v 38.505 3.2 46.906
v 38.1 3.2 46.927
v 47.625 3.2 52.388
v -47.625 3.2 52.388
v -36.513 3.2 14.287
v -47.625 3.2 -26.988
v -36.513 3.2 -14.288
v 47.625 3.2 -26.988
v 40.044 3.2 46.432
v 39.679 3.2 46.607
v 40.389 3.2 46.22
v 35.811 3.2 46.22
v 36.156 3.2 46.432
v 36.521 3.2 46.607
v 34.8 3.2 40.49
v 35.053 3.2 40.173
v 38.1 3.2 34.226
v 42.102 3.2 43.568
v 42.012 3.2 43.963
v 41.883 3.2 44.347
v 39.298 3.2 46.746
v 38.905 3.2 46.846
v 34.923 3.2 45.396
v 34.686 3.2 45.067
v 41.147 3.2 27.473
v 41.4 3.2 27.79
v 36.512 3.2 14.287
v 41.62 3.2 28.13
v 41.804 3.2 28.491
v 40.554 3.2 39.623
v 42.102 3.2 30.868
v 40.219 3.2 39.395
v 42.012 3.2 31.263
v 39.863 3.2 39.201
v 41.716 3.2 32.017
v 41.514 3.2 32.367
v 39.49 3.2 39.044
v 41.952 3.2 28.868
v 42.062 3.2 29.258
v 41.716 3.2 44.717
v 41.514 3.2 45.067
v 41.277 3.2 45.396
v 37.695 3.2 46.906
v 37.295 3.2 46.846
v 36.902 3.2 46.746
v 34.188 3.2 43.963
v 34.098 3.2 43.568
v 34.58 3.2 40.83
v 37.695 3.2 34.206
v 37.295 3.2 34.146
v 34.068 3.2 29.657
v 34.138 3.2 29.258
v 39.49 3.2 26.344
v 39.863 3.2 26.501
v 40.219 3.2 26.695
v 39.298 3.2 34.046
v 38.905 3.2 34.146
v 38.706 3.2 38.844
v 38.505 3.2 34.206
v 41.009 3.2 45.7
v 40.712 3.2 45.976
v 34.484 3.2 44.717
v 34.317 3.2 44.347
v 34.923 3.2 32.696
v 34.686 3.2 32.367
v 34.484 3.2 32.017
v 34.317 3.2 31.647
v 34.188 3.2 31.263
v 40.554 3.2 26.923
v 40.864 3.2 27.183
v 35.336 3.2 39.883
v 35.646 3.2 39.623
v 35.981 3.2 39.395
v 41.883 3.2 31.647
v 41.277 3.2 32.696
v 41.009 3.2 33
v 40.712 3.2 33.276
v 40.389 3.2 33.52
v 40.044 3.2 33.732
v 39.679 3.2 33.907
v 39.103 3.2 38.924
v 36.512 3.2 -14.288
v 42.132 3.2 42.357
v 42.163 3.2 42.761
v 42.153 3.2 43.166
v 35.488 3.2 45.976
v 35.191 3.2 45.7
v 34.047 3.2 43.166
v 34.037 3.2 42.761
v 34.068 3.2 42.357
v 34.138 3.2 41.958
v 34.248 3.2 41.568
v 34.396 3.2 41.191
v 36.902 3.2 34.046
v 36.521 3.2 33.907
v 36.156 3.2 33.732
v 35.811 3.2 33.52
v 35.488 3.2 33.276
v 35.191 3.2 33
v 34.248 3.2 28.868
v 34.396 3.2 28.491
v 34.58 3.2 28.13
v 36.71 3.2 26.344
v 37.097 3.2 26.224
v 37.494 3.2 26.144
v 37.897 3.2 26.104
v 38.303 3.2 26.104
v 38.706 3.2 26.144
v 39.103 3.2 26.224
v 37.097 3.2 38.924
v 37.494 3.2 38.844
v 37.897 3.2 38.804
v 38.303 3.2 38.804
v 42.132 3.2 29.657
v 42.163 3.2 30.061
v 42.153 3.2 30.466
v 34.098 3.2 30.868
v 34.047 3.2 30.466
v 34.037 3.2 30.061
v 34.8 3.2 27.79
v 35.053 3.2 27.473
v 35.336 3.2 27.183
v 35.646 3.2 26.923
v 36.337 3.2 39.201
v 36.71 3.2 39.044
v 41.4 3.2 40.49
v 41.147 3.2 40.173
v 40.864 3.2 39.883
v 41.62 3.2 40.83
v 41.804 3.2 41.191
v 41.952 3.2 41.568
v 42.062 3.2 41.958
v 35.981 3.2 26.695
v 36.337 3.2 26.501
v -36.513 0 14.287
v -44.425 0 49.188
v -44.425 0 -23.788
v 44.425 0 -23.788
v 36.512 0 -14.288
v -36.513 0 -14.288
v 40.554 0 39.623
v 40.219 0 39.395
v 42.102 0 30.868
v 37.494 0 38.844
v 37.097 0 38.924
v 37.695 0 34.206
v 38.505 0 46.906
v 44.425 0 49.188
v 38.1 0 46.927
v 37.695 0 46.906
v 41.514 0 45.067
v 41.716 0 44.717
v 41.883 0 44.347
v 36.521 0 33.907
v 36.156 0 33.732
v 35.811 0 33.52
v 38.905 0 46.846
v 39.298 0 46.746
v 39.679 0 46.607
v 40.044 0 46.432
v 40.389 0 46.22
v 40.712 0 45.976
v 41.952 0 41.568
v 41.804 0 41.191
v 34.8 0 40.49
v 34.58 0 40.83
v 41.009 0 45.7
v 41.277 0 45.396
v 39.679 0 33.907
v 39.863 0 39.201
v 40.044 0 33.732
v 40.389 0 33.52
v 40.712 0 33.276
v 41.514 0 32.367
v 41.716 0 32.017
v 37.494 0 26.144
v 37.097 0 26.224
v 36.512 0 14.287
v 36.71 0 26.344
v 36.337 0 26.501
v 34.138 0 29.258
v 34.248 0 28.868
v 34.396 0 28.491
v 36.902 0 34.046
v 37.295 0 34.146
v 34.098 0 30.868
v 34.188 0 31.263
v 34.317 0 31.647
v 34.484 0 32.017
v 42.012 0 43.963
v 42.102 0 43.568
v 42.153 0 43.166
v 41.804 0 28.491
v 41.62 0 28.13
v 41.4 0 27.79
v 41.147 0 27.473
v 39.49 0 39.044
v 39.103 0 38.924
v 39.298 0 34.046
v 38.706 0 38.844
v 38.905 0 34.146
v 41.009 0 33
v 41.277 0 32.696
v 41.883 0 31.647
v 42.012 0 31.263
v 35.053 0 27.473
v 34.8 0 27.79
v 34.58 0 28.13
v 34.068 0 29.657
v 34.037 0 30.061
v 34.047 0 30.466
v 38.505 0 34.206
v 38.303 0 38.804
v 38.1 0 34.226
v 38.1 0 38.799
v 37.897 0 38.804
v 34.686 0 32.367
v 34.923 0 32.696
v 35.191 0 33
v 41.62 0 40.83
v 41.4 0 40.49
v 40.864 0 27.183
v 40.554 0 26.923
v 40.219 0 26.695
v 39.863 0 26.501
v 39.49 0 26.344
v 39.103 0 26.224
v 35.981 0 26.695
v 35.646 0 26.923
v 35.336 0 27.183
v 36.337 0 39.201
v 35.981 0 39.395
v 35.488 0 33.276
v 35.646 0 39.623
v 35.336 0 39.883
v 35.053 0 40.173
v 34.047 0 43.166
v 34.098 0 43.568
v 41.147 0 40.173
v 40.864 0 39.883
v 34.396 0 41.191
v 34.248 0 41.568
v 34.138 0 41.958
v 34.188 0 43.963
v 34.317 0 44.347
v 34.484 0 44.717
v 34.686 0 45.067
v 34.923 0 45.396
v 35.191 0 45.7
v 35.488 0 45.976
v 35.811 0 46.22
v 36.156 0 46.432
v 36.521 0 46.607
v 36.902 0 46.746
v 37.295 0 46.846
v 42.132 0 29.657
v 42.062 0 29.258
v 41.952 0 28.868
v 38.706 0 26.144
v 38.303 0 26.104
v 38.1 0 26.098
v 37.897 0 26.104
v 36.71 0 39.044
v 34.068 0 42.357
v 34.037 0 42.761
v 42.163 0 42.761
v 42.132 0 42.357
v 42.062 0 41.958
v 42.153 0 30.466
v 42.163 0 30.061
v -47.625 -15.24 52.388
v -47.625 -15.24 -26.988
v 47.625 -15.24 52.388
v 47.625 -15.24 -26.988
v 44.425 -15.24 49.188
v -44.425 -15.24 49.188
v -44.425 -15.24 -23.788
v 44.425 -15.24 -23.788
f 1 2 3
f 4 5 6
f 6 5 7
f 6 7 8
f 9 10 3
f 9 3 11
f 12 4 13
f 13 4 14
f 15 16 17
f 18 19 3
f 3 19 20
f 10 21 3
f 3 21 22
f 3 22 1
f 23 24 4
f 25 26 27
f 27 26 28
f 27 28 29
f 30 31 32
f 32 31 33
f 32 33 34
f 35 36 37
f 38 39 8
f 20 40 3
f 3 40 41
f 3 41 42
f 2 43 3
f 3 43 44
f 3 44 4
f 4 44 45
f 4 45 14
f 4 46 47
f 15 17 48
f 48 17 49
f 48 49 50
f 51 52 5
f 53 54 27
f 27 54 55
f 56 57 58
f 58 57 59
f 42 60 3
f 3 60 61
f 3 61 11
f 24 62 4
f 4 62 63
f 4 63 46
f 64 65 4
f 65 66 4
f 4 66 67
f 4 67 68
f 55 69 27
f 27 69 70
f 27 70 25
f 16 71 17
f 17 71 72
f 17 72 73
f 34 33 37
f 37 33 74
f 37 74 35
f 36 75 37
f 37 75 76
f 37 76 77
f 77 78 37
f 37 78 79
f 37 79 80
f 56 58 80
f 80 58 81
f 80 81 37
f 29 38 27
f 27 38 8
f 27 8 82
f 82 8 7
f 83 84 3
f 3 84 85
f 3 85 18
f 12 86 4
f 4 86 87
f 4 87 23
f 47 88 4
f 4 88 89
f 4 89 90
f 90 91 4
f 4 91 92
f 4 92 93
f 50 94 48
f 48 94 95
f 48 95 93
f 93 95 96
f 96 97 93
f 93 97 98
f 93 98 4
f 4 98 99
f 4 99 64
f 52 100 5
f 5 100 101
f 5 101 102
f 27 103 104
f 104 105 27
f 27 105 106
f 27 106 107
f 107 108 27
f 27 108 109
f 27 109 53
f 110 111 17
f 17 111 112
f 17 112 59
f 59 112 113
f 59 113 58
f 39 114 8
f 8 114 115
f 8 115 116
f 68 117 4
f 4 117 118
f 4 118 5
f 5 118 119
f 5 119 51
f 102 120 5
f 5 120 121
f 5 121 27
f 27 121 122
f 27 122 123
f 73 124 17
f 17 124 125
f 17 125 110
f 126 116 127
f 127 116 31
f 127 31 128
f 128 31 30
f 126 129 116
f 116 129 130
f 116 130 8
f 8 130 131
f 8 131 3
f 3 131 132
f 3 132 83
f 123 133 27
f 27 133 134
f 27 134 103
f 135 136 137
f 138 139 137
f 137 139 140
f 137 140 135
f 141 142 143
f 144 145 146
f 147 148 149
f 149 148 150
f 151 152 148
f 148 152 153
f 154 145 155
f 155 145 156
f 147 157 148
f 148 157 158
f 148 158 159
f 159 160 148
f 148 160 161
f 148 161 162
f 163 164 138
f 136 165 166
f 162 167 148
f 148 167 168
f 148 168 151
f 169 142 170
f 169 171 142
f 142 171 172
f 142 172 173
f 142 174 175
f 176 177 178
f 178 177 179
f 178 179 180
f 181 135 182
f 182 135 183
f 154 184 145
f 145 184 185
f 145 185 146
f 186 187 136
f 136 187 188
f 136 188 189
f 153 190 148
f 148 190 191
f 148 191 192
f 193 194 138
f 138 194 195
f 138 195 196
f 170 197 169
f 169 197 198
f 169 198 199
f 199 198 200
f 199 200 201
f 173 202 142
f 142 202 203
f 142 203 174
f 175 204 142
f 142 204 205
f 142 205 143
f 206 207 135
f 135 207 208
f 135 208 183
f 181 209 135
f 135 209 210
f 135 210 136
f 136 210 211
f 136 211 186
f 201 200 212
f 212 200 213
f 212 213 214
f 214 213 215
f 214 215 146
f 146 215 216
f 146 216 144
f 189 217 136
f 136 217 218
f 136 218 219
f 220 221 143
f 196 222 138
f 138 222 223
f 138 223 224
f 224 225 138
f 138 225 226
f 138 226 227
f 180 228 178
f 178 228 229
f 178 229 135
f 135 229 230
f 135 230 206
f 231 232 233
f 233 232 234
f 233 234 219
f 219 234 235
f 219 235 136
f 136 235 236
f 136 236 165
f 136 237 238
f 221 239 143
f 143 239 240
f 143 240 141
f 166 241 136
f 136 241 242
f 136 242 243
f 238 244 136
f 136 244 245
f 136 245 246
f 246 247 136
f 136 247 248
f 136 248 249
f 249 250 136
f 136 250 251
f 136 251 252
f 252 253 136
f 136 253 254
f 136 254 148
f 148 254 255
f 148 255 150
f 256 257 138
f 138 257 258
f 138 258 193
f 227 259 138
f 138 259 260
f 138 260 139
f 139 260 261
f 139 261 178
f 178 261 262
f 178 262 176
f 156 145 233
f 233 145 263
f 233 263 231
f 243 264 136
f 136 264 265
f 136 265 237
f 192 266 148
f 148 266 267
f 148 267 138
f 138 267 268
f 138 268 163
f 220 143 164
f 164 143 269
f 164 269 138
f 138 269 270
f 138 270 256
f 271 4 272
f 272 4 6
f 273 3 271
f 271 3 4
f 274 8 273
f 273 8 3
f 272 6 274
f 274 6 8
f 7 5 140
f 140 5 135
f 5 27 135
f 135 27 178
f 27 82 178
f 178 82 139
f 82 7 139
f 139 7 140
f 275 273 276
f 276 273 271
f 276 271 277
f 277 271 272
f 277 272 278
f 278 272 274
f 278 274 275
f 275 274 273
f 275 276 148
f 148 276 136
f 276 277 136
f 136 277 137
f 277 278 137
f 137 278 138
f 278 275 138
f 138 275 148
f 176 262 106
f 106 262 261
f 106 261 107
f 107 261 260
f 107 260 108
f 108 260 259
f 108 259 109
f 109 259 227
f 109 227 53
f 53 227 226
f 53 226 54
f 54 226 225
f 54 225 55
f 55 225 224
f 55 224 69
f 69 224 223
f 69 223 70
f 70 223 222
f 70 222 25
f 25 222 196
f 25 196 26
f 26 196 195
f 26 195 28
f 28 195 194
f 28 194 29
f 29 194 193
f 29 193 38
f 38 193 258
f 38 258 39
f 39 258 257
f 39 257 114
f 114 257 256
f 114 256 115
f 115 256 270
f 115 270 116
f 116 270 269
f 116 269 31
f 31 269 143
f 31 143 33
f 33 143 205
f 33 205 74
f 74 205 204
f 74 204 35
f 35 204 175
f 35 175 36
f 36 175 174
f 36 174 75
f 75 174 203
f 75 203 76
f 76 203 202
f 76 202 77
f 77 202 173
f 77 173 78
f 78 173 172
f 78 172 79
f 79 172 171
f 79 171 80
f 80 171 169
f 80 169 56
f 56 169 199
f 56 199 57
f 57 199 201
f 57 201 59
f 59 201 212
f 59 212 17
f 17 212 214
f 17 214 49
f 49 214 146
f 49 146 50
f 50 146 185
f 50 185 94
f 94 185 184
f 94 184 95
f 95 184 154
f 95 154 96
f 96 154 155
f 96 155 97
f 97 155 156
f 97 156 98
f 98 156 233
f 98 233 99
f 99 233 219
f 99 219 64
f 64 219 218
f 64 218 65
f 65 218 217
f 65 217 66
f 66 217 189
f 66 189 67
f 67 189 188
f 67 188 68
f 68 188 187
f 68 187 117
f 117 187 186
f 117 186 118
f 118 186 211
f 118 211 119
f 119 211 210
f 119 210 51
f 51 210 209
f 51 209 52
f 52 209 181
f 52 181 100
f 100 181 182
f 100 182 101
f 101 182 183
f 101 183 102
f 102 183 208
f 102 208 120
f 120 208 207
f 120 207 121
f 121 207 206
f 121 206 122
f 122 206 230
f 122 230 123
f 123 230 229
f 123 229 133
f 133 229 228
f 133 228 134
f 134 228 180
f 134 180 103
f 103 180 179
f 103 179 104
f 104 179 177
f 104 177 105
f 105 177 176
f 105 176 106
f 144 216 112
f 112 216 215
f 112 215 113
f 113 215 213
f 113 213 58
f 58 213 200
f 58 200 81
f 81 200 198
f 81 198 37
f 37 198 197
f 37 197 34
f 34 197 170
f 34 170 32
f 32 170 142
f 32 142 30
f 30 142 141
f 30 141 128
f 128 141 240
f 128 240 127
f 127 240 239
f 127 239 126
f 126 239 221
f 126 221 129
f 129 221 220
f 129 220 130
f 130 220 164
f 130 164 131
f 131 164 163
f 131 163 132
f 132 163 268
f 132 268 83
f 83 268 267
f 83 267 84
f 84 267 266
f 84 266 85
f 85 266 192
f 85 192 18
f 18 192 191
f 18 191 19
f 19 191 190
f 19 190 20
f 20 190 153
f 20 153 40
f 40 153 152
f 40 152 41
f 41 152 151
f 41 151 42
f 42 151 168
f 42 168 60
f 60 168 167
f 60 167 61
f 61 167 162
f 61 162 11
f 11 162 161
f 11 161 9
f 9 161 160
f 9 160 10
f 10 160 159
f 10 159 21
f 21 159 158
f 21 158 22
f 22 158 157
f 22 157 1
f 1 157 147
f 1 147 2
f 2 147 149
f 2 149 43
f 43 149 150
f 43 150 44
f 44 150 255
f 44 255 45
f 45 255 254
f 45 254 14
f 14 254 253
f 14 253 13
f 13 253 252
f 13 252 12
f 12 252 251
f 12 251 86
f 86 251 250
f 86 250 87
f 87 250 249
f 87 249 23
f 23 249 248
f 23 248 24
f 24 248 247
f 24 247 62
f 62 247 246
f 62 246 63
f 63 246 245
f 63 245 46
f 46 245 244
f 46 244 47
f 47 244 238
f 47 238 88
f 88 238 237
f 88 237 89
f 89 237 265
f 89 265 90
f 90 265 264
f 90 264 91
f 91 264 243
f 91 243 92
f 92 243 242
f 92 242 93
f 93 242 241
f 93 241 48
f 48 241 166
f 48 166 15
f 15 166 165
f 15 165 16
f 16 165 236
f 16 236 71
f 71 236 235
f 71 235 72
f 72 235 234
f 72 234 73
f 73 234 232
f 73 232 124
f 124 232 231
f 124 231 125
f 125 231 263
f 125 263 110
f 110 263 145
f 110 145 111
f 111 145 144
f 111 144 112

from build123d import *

# Parameters (mm, degrees)
SKETCH1_W           = 95.25
SKETCH1_H           = 79.375
SKETCH1_W_2         = 73.025
SKETCH1_H_2         = 28.575
BOSS_EXTRUDE1_DEPTH = 3.2
SKETCH2_W           = 95.25
SKETCH2_H           = 79.375
SKETCH2_W_2         = 88.85
SKETCH2_H_2         = 72.975
EXTRUDE_THIN1_DEPTH = 15.24
SKETCH3_R           = 4.064
CUT_EXTRUDE1_DEPTH  = 74.161631893


with BuildPart() as part:
    # Sketch1 → Boss-Extrude1 (new body)
    with BuildSketch(Plane(origin=(0, 0, 0), x_dir=(1, 0, 0), z_dir=(0, 1, 0))):
        with Locations((0, -12.7)):
            Rectangle(SKETCH1_W, SKETCH1_H)
        Rectangle(SKETCH1_W_2, SKETCH1_H_2, mode=Mode.SUBTRACT)
    extrude(amount=BOSS_EXTRUDE1_DEPTH)

    # Sketch2 → Extrude-Thin1 (add)
    with BuildSketch(Plane.XZ):
        with Locations((0, 12.7)):
            Rectangle(SKETCH2_W, SKETCH2_H)
        with Locations((0, 12.7)):
            Rectangle(SKETCH2_W_2, SKETCH2_H_2, mode=Mode.SUBTRACT)
    extrude(amount=EXTRUDE_THIN1_DEPTH)

    # Sketch3 → Cut-Extrude1 (cut, through all)
    with BuildSketch(Plane(origin=(0, 3.2, 0), x_dir=(1, 0, 0), z_dir=(0, 1, 0))):
        with Locations(Location((38.1, -30.1625, 0), (0, 0, 270))):
            Circle(SKETCH3_R)
        with Locations(Location((38.1, -42.8625, 0), (0, 0, 270))):
            Circle(SKETCH3_R)
    extrude(amount=-CUT_EXTRUDE1_DEPTH, mode=Mode.SUBTRACT)


solid = part.part
